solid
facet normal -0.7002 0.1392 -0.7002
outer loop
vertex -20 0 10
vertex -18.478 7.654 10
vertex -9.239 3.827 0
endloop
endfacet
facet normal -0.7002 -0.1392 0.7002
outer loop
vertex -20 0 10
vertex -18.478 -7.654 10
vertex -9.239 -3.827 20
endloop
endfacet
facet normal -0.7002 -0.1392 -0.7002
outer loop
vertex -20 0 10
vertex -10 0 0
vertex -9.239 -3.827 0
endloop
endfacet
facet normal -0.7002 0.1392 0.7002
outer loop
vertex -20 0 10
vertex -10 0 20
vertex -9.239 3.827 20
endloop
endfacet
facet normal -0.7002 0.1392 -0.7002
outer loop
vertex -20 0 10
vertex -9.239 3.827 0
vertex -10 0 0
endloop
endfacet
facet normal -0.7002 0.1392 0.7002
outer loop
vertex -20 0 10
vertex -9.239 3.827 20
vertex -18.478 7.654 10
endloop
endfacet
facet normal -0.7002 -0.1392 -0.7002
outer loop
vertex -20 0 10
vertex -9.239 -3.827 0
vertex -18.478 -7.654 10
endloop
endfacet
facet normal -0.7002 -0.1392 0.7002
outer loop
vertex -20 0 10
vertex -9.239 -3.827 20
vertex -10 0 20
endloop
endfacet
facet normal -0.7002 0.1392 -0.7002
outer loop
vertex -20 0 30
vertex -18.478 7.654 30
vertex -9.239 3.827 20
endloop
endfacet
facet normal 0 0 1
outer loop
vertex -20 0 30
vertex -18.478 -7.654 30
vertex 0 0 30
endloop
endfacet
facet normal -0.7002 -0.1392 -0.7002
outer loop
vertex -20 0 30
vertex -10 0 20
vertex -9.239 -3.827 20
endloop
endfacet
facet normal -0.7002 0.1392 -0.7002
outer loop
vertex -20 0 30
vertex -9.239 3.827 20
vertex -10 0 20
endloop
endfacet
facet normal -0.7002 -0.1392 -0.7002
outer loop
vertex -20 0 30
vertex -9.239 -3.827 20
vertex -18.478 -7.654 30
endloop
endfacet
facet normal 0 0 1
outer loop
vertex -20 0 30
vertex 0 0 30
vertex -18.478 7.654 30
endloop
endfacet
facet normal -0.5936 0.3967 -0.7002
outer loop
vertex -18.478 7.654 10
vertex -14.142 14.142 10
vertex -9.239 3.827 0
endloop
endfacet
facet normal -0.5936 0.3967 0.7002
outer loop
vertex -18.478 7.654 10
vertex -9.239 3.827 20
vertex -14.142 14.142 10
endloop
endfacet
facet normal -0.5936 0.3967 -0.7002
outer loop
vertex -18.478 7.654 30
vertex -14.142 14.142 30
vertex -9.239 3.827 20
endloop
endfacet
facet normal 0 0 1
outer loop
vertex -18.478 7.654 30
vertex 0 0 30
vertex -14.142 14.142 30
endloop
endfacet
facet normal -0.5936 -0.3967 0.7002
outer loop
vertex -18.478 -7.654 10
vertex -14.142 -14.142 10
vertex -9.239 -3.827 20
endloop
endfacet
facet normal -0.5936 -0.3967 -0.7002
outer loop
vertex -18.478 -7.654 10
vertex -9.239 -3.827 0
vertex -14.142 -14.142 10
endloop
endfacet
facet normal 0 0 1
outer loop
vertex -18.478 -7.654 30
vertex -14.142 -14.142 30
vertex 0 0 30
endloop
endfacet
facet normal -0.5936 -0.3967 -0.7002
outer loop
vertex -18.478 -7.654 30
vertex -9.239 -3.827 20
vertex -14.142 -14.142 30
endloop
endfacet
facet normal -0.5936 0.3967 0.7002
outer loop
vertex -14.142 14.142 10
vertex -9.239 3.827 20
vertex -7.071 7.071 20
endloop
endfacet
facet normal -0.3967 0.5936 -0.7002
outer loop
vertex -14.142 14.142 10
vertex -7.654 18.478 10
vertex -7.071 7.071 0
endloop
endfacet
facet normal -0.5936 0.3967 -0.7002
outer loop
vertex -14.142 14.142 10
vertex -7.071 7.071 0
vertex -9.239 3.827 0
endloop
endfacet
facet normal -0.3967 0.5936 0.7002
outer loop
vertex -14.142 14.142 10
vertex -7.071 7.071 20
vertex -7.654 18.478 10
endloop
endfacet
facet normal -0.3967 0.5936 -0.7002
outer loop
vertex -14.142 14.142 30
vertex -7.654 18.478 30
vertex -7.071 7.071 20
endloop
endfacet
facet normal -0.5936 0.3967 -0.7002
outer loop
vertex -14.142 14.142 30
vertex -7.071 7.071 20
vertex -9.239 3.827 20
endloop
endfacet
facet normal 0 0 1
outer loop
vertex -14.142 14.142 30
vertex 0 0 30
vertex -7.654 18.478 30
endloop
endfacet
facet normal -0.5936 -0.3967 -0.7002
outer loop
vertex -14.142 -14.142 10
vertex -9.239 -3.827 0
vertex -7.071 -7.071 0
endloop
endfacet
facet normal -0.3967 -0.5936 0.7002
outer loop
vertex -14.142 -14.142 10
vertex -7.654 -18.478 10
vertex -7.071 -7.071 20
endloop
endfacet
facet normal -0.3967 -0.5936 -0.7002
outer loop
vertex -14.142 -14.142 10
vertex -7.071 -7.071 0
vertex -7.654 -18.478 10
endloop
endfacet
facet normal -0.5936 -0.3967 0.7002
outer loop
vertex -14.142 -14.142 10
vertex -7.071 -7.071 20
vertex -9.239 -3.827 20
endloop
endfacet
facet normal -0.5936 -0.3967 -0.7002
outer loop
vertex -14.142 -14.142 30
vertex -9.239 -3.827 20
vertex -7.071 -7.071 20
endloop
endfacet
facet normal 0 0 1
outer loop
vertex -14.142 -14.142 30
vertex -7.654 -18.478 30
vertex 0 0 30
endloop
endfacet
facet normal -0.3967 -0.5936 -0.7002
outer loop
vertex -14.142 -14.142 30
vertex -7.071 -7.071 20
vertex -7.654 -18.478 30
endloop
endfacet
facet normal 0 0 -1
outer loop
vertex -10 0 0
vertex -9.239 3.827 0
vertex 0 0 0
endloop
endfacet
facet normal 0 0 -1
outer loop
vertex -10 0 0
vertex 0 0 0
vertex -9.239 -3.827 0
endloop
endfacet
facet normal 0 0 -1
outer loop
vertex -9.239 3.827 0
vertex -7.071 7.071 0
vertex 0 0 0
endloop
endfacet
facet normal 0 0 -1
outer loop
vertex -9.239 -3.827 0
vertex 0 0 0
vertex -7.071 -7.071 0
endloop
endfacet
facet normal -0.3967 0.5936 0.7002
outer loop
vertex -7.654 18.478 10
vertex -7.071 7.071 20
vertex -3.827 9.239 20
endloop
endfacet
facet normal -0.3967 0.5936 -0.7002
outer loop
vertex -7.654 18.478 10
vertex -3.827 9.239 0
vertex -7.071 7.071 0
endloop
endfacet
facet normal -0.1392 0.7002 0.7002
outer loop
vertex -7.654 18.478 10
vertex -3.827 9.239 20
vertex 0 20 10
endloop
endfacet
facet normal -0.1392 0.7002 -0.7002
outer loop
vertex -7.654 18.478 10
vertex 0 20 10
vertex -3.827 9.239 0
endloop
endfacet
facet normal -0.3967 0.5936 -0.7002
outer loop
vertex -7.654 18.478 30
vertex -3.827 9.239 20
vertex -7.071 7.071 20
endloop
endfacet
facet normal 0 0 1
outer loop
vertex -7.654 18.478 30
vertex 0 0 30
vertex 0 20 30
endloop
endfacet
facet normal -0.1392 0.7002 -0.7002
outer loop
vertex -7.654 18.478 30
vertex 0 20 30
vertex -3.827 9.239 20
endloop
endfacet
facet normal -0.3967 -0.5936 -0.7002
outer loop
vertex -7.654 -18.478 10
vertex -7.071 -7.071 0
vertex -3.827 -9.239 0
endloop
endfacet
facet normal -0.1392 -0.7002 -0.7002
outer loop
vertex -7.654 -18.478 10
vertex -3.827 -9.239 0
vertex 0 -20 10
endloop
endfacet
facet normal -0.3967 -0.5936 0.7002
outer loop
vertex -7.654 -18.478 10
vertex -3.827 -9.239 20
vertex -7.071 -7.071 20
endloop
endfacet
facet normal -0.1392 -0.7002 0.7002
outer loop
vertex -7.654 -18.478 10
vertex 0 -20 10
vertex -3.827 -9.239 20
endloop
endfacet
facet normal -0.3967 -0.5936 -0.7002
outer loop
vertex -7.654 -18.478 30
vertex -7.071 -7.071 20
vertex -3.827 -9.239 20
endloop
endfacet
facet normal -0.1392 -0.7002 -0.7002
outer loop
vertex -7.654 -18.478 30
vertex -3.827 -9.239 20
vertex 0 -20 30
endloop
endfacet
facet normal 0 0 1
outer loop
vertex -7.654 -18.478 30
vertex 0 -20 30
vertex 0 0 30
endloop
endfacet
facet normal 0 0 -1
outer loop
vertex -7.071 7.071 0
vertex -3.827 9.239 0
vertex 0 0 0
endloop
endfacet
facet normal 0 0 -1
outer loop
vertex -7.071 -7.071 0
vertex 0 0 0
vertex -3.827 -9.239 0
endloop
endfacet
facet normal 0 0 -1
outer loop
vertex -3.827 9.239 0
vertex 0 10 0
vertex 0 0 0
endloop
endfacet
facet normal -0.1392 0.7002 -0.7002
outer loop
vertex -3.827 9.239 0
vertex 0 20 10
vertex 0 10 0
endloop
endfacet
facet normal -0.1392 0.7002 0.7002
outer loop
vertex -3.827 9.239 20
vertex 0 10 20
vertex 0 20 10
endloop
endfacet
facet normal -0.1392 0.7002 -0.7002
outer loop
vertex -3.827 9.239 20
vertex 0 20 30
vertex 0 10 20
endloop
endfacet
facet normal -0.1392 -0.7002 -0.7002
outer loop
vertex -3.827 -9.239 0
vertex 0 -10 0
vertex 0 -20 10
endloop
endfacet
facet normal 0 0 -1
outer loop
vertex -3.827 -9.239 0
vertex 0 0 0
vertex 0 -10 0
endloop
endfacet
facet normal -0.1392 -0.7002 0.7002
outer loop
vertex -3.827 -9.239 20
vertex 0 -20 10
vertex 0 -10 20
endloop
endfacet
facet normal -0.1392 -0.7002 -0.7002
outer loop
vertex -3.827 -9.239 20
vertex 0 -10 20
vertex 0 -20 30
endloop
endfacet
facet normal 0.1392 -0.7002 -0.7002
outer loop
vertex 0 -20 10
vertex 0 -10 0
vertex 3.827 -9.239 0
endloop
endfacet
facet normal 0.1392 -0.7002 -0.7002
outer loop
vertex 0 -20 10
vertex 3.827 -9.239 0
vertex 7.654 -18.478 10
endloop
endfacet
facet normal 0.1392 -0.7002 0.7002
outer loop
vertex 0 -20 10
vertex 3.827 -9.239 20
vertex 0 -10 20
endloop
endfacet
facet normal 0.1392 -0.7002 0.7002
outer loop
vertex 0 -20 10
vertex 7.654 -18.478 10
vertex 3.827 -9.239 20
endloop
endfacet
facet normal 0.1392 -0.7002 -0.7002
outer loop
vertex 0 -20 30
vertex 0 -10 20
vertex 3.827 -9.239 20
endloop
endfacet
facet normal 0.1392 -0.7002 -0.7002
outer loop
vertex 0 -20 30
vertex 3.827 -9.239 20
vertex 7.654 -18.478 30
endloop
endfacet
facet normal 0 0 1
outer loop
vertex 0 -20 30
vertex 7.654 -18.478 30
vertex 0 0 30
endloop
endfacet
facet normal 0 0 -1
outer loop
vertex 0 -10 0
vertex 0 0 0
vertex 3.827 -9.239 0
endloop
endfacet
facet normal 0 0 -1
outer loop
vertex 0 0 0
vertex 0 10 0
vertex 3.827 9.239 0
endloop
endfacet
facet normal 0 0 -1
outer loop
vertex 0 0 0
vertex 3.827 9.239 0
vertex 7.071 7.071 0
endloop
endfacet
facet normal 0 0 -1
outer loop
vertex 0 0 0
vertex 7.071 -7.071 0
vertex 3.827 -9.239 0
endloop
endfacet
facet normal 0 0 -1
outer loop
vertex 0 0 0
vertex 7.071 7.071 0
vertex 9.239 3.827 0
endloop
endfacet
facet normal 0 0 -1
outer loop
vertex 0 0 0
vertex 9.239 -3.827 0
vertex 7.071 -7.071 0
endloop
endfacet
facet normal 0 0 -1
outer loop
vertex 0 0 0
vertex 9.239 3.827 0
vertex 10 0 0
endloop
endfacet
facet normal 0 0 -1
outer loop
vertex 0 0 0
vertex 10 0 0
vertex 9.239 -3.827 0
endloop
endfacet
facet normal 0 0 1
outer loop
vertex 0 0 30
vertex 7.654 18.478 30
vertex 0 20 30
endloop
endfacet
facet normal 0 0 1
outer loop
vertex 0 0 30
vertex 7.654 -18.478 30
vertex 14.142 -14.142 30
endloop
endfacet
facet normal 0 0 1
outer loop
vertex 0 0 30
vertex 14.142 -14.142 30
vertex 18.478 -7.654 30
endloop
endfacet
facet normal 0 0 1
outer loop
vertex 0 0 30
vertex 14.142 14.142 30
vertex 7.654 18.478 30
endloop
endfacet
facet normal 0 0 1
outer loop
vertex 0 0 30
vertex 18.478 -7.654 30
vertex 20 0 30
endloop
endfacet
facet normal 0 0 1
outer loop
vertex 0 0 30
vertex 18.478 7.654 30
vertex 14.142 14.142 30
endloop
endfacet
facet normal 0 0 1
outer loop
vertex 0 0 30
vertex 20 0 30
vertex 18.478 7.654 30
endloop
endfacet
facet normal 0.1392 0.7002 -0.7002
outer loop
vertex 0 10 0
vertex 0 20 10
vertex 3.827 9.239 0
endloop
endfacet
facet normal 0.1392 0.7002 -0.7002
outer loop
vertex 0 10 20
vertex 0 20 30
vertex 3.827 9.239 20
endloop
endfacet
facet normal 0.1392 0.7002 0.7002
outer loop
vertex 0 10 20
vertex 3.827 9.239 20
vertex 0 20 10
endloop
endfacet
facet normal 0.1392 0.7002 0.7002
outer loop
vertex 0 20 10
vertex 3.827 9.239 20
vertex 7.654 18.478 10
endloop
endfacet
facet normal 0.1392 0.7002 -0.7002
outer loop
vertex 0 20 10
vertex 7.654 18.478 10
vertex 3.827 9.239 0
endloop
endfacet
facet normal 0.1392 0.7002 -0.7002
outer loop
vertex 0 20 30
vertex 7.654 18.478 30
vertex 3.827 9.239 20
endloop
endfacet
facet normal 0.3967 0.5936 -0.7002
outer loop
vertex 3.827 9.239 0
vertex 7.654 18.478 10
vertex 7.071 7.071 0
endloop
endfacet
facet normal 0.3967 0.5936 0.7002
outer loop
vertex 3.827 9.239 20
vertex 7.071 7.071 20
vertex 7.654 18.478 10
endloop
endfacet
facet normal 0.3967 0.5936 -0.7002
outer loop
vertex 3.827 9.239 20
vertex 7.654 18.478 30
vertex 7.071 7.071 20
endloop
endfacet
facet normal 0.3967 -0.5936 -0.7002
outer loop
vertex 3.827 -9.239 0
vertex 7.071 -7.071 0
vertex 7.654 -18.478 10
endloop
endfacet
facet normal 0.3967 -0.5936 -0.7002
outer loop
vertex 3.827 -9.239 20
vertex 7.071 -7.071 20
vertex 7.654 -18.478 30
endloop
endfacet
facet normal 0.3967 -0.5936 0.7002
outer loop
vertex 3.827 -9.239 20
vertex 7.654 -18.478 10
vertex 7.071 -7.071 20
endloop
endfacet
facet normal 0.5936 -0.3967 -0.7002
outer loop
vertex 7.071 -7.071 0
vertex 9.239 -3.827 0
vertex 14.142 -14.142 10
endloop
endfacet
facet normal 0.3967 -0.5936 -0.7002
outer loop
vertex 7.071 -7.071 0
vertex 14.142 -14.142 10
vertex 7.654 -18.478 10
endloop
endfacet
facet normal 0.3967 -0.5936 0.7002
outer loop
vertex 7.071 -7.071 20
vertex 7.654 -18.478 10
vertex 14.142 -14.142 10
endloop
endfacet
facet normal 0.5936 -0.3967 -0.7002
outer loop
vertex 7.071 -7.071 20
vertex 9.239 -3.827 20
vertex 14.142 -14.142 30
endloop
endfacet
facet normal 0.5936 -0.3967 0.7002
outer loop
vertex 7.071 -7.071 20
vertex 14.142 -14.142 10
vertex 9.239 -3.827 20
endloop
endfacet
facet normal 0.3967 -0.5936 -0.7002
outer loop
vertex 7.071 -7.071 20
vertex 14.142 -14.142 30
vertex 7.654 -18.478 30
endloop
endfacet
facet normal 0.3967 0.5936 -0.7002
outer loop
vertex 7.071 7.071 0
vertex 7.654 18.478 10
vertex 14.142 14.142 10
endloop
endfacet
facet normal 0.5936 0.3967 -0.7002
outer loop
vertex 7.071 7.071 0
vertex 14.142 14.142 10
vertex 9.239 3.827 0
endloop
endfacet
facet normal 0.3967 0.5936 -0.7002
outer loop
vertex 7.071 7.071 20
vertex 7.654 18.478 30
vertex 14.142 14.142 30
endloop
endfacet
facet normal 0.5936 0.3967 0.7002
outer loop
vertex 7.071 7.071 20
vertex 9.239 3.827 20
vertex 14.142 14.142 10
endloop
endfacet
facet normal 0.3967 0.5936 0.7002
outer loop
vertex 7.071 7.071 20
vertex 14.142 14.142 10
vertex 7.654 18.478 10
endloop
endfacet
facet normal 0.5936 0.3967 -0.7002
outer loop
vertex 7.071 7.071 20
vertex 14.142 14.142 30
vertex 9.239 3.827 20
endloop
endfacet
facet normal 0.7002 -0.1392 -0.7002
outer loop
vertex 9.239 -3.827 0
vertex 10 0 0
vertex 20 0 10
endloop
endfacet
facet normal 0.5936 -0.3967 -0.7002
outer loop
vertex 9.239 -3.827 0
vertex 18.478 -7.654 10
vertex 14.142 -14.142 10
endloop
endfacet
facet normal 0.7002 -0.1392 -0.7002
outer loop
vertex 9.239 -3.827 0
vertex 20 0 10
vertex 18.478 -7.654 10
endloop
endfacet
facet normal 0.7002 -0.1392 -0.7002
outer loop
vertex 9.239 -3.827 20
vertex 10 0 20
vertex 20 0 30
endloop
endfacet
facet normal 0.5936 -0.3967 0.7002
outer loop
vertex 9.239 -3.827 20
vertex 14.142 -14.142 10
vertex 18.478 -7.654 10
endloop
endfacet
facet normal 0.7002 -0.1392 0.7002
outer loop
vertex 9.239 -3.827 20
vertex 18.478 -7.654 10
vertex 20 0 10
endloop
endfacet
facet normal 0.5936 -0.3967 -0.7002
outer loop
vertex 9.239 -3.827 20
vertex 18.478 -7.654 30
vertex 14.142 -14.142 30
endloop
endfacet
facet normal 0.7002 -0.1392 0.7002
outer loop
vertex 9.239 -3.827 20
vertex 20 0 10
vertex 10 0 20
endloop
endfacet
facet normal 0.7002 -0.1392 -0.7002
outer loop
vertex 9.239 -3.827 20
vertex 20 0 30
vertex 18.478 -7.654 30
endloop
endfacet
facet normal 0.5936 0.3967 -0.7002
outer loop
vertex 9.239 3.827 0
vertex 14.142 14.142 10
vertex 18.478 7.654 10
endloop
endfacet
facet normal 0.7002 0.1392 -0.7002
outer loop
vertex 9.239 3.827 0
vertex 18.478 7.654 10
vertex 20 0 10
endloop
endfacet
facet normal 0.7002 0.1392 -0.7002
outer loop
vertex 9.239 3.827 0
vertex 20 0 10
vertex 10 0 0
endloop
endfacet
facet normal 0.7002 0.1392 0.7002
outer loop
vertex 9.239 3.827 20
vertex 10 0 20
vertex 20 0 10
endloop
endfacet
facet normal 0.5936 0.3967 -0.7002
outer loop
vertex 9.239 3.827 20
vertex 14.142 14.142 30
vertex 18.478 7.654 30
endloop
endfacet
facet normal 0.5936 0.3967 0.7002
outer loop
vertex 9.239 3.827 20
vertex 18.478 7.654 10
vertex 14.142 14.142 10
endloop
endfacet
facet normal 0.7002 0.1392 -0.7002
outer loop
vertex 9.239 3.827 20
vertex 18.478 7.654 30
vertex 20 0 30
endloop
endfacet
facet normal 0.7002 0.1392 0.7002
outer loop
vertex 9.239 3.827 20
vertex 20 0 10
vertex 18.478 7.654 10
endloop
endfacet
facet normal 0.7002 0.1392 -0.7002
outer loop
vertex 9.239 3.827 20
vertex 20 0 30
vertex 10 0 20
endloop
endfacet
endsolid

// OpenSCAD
// Start: lazy_union
default_5_default_5();
// End: lazy_union

// Modules.

// 'PartMaterial undef-default - default 5.0'
module default_5_default_5() {
  // 'None : _combine_solids_and_holes'
  union() {
    // 'default : _combine_solids_and_holes'
    union() {
      // 'poly_cone'
      multmatrix(m=[[0.0, 1.0, 0.0, 0.0], [1.0, 0.0, 0.0, 0.0], [-0.0, -0.0, -1.0, -0.0], [0.0, 0.0, 0.0, 1.0]]) {
        // 'poly_cone : _combine_solids_and_holes'
        union() {
          // 'poly_cone'
          polyhedron(points=[[0.0, 0.0, 0.0], [10.0, 0.0, 0.0], [20.0, 0.0, -10.0], [10.0, 0.0, -20.0], [20.0, 0.0, -30.0], [0.0, 0.0, -30.0], [0.0, 0.0, 0.0], [9.238795325112868, 3.826834323650898, 0.0], [18.477590650225736, 7.653668647301796, -10.0], [9.238795325112868, 3.826834323650898, -20.0], [18.477590650225736, 7.653668647301796, -30.0], [0.0, 0.0, -30.0], [0.0, 0.0, 0.0], [7.0710678118654755, 7.0710678118654755, 0.0], [14.142135623730951, 14.142135623730951, -10.0], [7.0710678118654755, 7.0710678118654755, -20.0], [14.142135623730951, 14.142135623730951, -30.0], [0.0, 0.0, -30.0], [0.0, 0.0, 0.0], [3.8268343236508984, 9.238795325112868, 0.0], [7.653668647301797, 18.477590650225736, -10.0], [3.8268343236508984, 9.238795325112868, -20.0], [7.653668647301797, 18.477590650225736, -30.0], [0.0, 0.0, -30.0], [0.0, 0.0, 0.0], [0.0, 10.0, 0.0], [0.0, 20.0, -10.0], [0.0, 10.0, -20.0], [0.0, 20.0, -30.0], [0.0, 0.0, -30.0], [0.0, 0.0, 0.0], [-3.826834323650897, 9.238795325112868, 0.0], [-7.653668647301794, 18.477590650225736, -10.0], [-3.826834323650897, 9.238795325112868, -20.0], [-7.653668647301794, 18.477590650225736, -30.0], [0.0, 0.0, -30.0], [0.0, 0.0, 0.0], [-7.071067811865475, 7.0710678118654755, 0.0], [-14.14213562373095, 14.142135623730951, -10.0], [-7.071067811865475, 7.0710678118654755, -20.0], [-14.14213562373095, 14.142135623730951, -30.0], [0.0, 0.0, -30.0], [0.0, 0.0, 0.0], [-9.238795325112868, 3.826834323650899, 0.0], [-18.477590650225736, 7.653668647301798, -10.0], [-9.238795325112868, 3.826834323650899, -20.0], [-18.477590650225736, 7.653668647301798, -30.0], [0.0, 0.0, -30.0], [0.0, 0.0, 0.0], [-10.0, 0.0, 0.0], [-20.0, 0.0, -10.0], [-10.0, 0.0, -20.0], [-20.0, 0.0, -30.0], [0.0, 0.0, -30.0], [0.0, 0.0, 0.0], [-9.238795325112868, -3.8268343236508966, 0.0], [-18.477590650225736, -7.653668647301793, -10.0], [-9.238795325112868, -3.8268343236508966, -20.0], [-18.477590650225736, -7.653668647301793, -30.0], [0.0, 0.0, -30.0], [0.0, 0.0, 0.0], [-7.071067811865477, -7.071067811865475, 0.0], [-14.142135623730955, -14.14213562373095, -10.0], [-7.071067811865477, -7.071067811865475, -20.0], [-14.142135623730955, -14.14213562373095, -30.0], [0.0, 0.0, -30.0], [0.0, 0.0, 0.0], [-3.8268343236509033, -9.238795325112864, 0.0], [-7.6536686473018065, -18.47759065022573, -10.0], [-3.8268343236509033, -9.238795325112864, -20.0], [-7.6536686473018065, -18.47759065022573, -30.0], [0.0, 0.0, -30.0], [0.0, 0.0, 0.0], [0.0, -10.0, 0.0], [0.0, -20.0, -10.0], [0.0, -10.0, -20.0], [0.0, -20.0, -30.0], [0.0, 0.0, -30.0], [0.0, 0.0, 0.0], [3.8268343236509, -9.238795325112866, 0.0], [7.6536686473018, -18.477590650225732, -10.0], [3.8268343236509, -9.238795325112866, -20.0], [7.6536686473018, -18.477590650225732, -30.0], [0.0, 0.0, -30.0], [0.0, 0.0, 0.0], [7.071067811865474, -7.071067811865477, 0.0], [14.142135623730947, -14.142135623730955, -10.0], [7.071067811865474, -7.071067811865477, -20.0], [14.142135623730947, -14.142135623730955, -30.0], [0.0, 0.0, -30.0], [0.0, 0.0, 0.0], [9.238795325112864, -3.826834323650904, 0.0], [18.47759065022573, -7.653668647301808, -10.0], [9.238795325112864, -3.826834323650904, -20.0], [18.47759065022573, -7.653668647301808, -30.0], [0.0, 0.0, -30.0], [0.0, 0.0, 0.0], [10.0, 0.0, 0.0], [20.0, 0.0, -10.0], [10.0, 0.0, -20.0], [20.0, 0.0, -30.0], [0.0, 0.0, -30.0]], faces=[[0, 6, 7, 1], [1, 7, 8, 2], [2, 8, 9, 3], [3, 9, 10, 4], [4, 10, 11, 5], [5, 11, 6, 0], [6, 12, 13, 7], [7, 13, 14, 8], [8, 14, 15, 9], [9, 15, 16, 10], [10, 16, 17, 11], [11, 17, 12, 6], [12, 18, 19, 13], [13, 19, 20, 14], [14, 20, 21, 15], [15, 21, 22, 16], [16, 22, 23, 17], [17, 23, 18, 12], [18, 24, 25, 19], [19, 25, 26, 20], [20, 26, 27, 21], [21, 27, 28, 22], [22, 28, 29, 23], [23, 29, 24, 18], [24, 30, 31, 25], [25, 31, 32, 26], [26, 32, 33, 27], [27, 33, 34, 28], [28, 34, 35, 29], [29, 35, 30, 24], [30, 36, 37, 31], [31, 37, 38, 32], [32, 38, 39, 33], [33, 39, 40, 34], [34, 40, 41, 35], [35, 41, 36, 30], [36, 42, 43, 37], [37, 43, 44, 38], [38, 44, 45, 39], [39, 45, 46, 40], [40, 46, 47, 41], [41, 47, 42, 36], [42, 48, 49, 43], [43, 49, 50, 44], [44, 50, 51, 45], [45, 51, 52, 46], [46, 52, 53, 47], [47, 53, 48, 42], [48, 54, 55, 49], [49, 55, 56, 50], [50, 56, 57, 51], [51, 57, 58, 52], [52, 58, 59, 53], [53, 59, 54, 48], [54, 60, 61, 55], [55, 61, 62, 56], [56, 62, 63, 57], [57, 63, 64, 58], [58, 64, 65, 59], [59, 65, 60, 54], [60, 66, 67, 61], [61, 67, 68, 62], [62, 68, 69, 63], [63, 69, 70, 64], [64, 70, 71, 65], [65, 71, 66, 60], [66, 72, 73, 67], [67, 73, 74, 68], [68, 74, 75, 69], [69, 75, 76, 70], [70, 76, 77, 71], [71, 77, 72, 66], [72, 78, 79, 73], [73, 79, 80, 74], [74, 80, 81, 75], [75, 81, 82, 76], [76, 82, 83, 77], [77, 83, 78, 72], [78, 84, 85, 79], [79, 85, 86, 80], [80, 86, 87, 81], [81, 87, 88, 82], [82, 88, 89, 83], [83, 89, 84, 78], [84, 90, 91, 85], [85, 91, 92, 86], [86, 92, 93, 87], [87, 93, 94, 88], [88, 94, 95, 89], [89, 95, 90, 84], [90, 96, 97, 91], [91, 97, 98, 92], [92, 98, 99, 93], [93, 99, 100, 94], [94, 100, 101, 95], [95, 101, 96, 90], [96, 0, 1, 97], [97, 1, 2, 98], [98, 2, 3, 99], [99, 3, 4, 100], [100, 4, 5, 101], [101, 5, 0, 96]], convexity=10);
        }
      }
    }
  }
} // end module default_5_default_5
